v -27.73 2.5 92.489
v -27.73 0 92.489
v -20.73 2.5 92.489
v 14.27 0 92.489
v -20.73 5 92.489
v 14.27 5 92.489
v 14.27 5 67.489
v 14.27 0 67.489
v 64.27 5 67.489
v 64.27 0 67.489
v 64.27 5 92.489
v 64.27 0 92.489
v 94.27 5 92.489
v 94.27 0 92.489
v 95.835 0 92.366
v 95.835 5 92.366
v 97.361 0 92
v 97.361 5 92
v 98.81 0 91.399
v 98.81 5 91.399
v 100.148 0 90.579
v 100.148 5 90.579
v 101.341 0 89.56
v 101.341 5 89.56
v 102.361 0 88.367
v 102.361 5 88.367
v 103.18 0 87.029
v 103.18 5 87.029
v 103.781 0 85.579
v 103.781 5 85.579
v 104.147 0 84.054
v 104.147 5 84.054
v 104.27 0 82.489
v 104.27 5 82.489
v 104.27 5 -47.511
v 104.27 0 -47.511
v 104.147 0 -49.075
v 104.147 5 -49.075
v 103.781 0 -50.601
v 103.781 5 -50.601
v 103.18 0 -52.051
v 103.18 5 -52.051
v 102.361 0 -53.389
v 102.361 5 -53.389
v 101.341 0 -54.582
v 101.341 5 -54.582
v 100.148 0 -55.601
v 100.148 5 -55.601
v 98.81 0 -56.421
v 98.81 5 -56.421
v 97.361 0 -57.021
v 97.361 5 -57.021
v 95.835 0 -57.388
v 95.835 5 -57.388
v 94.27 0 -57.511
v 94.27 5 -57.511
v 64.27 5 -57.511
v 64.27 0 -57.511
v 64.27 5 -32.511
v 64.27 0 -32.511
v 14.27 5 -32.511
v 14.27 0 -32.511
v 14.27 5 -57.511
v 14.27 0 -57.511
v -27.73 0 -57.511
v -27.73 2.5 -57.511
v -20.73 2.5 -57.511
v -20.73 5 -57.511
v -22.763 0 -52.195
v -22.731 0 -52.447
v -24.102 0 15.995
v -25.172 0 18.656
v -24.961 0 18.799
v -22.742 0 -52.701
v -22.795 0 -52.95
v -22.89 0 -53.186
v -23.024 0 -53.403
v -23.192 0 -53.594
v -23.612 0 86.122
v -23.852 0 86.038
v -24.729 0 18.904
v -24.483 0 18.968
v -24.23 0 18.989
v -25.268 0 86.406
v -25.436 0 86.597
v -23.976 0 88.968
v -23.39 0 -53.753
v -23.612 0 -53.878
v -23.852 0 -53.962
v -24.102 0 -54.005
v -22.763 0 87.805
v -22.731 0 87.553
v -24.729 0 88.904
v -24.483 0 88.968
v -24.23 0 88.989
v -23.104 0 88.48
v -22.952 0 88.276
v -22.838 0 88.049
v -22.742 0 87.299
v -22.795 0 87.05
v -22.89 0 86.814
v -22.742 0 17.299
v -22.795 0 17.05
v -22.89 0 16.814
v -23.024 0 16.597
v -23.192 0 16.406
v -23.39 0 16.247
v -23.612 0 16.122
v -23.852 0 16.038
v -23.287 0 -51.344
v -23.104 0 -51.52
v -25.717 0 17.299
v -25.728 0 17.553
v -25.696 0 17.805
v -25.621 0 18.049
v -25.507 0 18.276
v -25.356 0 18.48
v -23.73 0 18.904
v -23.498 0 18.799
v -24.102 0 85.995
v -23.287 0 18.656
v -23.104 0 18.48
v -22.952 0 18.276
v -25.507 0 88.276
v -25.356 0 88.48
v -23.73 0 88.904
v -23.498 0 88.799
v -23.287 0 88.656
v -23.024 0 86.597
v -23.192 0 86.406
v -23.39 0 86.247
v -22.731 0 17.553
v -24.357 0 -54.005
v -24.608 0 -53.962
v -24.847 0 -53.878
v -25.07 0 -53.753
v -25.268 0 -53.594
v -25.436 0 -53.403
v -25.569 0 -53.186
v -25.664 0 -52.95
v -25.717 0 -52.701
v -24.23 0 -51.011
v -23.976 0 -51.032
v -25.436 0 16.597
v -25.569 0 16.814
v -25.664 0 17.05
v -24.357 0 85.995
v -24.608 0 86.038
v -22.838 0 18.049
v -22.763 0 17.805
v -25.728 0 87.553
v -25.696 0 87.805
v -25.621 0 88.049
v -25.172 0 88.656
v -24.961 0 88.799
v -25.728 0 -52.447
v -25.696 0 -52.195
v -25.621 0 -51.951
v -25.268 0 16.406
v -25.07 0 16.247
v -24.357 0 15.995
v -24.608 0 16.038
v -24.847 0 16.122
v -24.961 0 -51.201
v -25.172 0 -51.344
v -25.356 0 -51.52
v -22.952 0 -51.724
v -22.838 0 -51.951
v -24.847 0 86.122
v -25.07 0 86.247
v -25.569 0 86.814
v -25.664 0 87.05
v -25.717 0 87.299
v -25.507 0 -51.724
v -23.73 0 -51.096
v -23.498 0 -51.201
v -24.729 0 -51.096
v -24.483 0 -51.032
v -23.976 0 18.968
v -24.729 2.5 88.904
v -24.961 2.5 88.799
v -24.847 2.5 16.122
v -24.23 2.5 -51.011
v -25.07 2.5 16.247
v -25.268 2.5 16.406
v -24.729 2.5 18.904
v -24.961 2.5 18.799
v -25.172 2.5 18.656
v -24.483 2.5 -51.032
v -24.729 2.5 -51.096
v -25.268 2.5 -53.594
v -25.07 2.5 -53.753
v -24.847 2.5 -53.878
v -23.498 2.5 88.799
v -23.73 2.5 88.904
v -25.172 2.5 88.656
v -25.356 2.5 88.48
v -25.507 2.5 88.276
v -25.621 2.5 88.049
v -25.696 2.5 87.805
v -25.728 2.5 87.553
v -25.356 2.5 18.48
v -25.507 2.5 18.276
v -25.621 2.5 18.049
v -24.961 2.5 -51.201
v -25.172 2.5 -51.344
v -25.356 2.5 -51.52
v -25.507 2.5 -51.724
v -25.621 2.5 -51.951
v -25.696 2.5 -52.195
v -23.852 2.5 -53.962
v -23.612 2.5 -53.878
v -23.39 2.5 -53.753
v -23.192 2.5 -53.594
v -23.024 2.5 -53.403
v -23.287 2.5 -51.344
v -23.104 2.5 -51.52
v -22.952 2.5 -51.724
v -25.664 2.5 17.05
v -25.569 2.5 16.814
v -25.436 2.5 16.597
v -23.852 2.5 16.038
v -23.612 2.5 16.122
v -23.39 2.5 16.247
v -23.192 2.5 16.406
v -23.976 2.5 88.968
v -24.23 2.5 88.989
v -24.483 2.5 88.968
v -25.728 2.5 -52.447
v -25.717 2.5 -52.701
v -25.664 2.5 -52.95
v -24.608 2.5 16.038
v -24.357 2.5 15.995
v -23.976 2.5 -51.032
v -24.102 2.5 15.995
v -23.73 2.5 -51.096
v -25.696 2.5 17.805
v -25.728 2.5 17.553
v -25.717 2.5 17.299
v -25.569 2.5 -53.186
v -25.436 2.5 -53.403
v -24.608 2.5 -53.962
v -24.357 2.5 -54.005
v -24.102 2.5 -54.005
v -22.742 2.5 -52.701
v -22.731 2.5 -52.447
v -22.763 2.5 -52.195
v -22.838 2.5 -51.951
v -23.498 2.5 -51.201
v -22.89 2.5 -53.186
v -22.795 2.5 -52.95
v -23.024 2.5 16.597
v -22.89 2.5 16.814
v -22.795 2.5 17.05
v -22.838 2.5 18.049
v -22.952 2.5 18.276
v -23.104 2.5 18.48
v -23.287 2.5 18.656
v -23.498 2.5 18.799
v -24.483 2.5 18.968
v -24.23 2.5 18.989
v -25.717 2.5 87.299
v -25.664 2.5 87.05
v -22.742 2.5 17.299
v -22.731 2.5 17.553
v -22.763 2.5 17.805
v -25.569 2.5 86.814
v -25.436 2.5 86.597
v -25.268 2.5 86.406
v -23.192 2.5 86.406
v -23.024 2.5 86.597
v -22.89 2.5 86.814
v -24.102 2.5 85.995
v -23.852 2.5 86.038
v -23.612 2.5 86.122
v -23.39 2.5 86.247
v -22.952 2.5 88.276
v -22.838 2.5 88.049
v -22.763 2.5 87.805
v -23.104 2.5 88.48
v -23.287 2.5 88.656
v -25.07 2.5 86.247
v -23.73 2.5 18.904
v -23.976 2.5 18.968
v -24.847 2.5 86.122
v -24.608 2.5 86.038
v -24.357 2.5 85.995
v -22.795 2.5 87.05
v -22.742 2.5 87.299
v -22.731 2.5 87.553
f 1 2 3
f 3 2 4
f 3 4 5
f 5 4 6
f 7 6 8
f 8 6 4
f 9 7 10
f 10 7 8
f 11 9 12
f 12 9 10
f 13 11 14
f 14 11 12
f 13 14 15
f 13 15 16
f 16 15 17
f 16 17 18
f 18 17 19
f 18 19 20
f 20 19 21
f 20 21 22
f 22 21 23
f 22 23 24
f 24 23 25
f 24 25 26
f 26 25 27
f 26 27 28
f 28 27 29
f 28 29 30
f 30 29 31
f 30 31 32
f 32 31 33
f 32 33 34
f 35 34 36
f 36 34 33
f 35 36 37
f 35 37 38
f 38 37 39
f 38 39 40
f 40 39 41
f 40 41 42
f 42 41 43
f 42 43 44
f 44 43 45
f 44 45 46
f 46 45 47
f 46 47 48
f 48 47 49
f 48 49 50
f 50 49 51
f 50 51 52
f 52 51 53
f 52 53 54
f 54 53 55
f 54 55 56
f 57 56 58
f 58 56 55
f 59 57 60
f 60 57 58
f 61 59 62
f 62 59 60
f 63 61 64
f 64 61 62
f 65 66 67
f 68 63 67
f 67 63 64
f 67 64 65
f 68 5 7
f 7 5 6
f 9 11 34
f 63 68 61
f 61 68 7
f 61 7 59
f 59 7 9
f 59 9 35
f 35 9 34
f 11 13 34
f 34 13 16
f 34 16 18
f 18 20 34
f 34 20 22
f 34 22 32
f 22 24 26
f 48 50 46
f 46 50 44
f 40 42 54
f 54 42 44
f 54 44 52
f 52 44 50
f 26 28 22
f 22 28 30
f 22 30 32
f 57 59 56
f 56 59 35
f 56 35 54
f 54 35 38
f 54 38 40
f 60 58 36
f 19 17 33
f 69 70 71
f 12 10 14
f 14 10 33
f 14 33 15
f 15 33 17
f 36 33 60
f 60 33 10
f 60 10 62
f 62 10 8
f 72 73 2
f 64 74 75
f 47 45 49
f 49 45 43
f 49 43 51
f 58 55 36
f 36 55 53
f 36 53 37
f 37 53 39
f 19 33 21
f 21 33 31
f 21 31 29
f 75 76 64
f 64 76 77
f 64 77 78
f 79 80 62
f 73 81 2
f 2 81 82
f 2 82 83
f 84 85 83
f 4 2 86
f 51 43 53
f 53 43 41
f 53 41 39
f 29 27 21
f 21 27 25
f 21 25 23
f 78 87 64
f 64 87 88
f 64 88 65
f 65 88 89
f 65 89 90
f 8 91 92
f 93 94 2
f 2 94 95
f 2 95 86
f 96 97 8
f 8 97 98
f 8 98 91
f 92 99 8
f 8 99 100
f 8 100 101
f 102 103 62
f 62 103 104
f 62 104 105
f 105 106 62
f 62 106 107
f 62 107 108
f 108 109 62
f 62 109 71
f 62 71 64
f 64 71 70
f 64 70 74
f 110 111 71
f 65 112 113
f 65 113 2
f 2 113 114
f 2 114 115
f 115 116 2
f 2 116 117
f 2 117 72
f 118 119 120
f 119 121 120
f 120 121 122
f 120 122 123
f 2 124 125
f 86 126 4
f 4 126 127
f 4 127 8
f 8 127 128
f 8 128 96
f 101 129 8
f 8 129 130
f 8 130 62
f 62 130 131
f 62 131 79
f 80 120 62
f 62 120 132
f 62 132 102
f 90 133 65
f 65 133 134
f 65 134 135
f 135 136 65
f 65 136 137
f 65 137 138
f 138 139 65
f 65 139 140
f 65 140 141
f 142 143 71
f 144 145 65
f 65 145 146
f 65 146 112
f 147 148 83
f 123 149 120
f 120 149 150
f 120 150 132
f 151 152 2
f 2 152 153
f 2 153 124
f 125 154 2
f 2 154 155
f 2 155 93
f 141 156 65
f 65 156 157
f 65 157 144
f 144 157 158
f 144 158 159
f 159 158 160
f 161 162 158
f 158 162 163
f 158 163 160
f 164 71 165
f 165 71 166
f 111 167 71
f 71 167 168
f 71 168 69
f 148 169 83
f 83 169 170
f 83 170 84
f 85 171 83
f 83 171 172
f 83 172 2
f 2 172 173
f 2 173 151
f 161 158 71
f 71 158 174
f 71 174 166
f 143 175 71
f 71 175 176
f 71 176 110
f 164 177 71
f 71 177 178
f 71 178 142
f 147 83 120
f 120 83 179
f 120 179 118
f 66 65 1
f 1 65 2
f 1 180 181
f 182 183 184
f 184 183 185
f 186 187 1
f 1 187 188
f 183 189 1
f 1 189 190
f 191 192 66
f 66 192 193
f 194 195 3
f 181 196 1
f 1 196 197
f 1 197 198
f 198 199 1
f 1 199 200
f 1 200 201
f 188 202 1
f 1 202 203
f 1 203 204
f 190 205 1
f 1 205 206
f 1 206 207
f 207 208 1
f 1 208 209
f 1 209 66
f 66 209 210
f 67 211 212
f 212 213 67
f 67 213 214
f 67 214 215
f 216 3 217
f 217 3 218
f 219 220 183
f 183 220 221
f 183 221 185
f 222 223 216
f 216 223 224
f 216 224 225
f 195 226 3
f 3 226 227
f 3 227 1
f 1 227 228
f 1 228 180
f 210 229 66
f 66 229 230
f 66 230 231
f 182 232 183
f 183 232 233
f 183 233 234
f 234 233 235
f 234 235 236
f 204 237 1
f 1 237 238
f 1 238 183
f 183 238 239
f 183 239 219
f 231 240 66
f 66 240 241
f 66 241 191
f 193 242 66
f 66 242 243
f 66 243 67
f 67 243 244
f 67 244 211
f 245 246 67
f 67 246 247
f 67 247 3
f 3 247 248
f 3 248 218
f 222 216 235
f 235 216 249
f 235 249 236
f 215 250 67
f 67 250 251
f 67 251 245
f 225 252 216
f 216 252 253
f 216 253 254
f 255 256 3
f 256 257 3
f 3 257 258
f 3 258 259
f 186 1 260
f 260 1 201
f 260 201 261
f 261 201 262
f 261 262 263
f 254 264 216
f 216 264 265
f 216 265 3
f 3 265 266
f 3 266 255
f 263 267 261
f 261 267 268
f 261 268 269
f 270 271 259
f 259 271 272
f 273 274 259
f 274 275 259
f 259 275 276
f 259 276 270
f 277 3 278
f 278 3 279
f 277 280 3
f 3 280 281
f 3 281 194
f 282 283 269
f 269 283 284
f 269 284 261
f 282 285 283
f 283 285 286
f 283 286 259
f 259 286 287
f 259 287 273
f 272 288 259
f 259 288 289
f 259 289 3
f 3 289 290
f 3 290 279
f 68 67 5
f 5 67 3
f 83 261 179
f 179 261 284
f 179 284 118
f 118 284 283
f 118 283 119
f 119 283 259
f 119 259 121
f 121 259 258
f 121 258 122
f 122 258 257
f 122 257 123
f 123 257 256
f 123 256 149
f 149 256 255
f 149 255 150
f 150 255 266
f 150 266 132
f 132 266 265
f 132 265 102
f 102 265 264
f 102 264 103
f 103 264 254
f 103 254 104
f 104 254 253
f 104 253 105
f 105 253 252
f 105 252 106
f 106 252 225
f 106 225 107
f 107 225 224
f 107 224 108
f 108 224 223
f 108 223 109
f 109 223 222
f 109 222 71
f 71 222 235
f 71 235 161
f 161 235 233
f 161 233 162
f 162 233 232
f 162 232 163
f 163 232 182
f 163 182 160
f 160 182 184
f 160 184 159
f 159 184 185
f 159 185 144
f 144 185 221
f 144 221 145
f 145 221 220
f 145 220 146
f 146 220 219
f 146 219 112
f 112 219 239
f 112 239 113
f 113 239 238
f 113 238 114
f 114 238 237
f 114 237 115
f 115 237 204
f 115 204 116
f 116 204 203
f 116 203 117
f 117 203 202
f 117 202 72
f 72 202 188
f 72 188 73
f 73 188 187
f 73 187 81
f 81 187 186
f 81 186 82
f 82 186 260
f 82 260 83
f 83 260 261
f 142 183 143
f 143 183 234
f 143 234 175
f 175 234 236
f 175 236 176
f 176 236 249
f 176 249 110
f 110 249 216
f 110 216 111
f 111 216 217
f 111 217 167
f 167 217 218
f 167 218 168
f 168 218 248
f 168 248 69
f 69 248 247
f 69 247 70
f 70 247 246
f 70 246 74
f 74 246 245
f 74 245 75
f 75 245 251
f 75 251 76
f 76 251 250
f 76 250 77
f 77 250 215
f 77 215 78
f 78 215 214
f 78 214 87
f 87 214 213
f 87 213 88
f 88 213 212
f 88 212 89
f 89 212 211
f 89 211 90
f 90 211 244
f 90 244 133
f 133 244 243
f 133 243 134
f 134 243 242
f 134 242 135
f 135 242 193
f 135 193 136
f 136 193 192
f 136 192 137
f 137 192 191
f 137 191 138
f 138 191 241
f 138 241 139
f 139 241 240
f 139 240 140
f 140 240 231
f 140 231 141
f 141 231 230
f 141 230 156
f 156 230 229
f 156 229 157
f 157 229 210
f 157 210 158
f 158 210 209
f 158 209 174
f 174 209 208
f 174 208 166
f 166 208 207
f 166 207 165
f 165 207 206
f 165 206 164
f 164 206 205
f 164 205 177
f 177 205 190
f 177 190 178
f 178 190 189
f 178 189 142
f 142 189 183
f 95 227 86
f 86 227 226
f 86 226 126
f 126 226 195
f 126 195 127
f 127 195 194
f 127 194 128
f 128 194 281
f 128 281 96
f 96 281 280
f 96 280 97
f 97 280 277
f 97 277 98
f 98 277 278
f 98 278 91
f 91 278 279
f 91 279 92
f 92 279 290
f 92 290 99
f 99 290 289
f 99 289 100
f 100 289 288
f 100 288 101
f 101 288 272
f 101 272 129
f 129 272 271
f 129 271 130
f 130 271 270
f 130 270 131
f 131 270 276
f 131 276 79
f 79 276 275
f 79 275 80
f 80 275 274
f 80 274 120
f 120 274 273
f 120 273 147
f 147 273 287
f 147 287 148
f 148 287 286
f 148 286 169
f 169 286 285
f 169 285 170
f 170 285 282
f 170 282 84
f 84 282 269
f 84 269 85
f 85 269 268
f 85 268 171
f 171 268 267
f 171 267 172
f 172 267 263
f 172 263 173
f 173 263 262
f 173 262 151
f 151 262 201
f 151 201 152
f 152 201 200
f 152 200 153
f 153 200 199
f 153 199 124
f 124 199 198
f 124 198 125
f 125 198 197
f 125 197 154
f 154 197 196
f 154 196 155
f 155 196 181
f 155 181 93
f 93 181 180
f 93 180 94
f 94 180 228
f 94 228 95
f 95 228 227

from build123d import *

# Parameters (mm, degrees)
BOSS_EXTRUDE1_DEPTH = 5
CUT_EXTRUDE1_DEPTH  = 150
SKETCH3_R           = 1.5
CUT_EXTRUDE2_DEPTH  = 140.401680724


with BuildPart() as part:
    # Sketch1 → Boss-Extrude1 (new body)
    with BuildSketch(Plane(origin=(0, 0, 0), x_dir=(1, 0, 0), z_dir=(0, 1, 0))):
        with BuildLine():
            Line((64.270386266, 57.510729614), (94.270386266, 57.510729614))
            ThreePointArc((94.270386266, 57.510729614), (101.341454078, 54.581797426), (104.270386266, 47.510729614))
            Line((104.270386266, 47.510729614), (104.270386266, -82.489270386))
            ThreePointArc((104.270386266, -82.489270386), (101.341454078, -89.560338198), (94.270386266, -92.489270386))
            Line((94.270386266, -92.489270386), (64.270386266, -92.489270386))
            Line((64.270386266, -92.489270386), (64.270386266, -67.489270386))
            Line((64.270386266, -67.489270386), (14.270386266, -67.489270386))
            Line((14.270386266, -67.489270386), (14.270386266, -92.489270386))
            Line((14.270386266, -92.489270386), (-55.729613734, -92.489270386))
            Line((-55.729613734, -92.489270386), (-55.729613734, -67.489270386))
            Line((-55.729613734, -67.489270386), (-105.729613734, -67.489270386))
            Line((-105.729613734, -67.489270386), (-105.729613734, -92.489270386))
            Line((-105.729613734, -92.489270386), (-135.729613734, -92.489270386))
            ThreePointArc((-135.729613734, -92.489270386), (-142.800681546, -89.560338198), (-145.729613734, -82.489270386))
            Line((-145.729613734, -82.489270386), (-145.729613734, 47.510729614))
            ThreePointArc((-145.729613734, 47.510729614), (-142.800681546, 54.581797426), (-135.729613734, 57.510729614))
            Line((-135.729613734, 57.510729614), (-105.729613734, 57.510729614))
            Line((-105.729613734, 57.510729614), (-105.729613734, 32.510729614))
            Line((-105.729613734, 32.510729614), (-55.729613734, 32.510729614))
            Line((-55.729613734, 32.510729614), (-55.729613734, 57.510729614))
            Line((-55.729613734, 57.510729614), (14.270386266, 57.510729614))
            Line((14.270386266, 57.510729614), (14.270386266, 32.510729614))
            Line((14.270386266, 32.510729614), (64.270386266, 32.510729614))
            Line((64.270386266, 32.510729614), (64.270386266, 57.510729614))
        make_face()
    extrude(amount=BOSS_EXTRUDE1_DEPTH)

    # Sketch2 → Cut-Extrude1 (cut)
    with BuildSketch(Plane(origin=(0, 0, -57.510729614), x_dir=(-1, 0, 0), z_dir=(0, 0, -1))):
        Polygon((20.729613734, 2.5), (20.729613734, 5), (55.729613734, 5), (105.729613734, 5), (135.729613734, 5), (145.729613734, 5), (145.729613734, 0), (135.729613734, 0), (105.729613734, 0), (55.729613734, 0), (27.729613734, 0), (27.729613734, 2.5), align=None)
    extrude(amount=-CUT_EXTRUDE1_DEPTH, mode=Mode.SUBTRACT)

    # Sketch3 → Cut-Extrude2 (cut, through all)
    with BuildSketch(Plane(origin=(0, 2.5, 0), x_dir=(1, 0, 0), z_dir=(0, 1, 0))):
        with Locations(Location((-24.229613734, -17.489270386, 0), (0, 0, 270))):
            Circle(SKETCH3_R)
        with Locations(Location((-24.229613734, 52.510729614, 0), (0, 0, 270))):
            Circle(SKETCH3_R)
        with Locations(Location((-24.229613734, -87.489270386, 0), (0, 0, 270))):
            Circle(SKETCH3_R)
    extrude(amount=-CUT_EXTRUDE2_DEPTH, mode=Mode.SUBTRACT)


solid = part.part
